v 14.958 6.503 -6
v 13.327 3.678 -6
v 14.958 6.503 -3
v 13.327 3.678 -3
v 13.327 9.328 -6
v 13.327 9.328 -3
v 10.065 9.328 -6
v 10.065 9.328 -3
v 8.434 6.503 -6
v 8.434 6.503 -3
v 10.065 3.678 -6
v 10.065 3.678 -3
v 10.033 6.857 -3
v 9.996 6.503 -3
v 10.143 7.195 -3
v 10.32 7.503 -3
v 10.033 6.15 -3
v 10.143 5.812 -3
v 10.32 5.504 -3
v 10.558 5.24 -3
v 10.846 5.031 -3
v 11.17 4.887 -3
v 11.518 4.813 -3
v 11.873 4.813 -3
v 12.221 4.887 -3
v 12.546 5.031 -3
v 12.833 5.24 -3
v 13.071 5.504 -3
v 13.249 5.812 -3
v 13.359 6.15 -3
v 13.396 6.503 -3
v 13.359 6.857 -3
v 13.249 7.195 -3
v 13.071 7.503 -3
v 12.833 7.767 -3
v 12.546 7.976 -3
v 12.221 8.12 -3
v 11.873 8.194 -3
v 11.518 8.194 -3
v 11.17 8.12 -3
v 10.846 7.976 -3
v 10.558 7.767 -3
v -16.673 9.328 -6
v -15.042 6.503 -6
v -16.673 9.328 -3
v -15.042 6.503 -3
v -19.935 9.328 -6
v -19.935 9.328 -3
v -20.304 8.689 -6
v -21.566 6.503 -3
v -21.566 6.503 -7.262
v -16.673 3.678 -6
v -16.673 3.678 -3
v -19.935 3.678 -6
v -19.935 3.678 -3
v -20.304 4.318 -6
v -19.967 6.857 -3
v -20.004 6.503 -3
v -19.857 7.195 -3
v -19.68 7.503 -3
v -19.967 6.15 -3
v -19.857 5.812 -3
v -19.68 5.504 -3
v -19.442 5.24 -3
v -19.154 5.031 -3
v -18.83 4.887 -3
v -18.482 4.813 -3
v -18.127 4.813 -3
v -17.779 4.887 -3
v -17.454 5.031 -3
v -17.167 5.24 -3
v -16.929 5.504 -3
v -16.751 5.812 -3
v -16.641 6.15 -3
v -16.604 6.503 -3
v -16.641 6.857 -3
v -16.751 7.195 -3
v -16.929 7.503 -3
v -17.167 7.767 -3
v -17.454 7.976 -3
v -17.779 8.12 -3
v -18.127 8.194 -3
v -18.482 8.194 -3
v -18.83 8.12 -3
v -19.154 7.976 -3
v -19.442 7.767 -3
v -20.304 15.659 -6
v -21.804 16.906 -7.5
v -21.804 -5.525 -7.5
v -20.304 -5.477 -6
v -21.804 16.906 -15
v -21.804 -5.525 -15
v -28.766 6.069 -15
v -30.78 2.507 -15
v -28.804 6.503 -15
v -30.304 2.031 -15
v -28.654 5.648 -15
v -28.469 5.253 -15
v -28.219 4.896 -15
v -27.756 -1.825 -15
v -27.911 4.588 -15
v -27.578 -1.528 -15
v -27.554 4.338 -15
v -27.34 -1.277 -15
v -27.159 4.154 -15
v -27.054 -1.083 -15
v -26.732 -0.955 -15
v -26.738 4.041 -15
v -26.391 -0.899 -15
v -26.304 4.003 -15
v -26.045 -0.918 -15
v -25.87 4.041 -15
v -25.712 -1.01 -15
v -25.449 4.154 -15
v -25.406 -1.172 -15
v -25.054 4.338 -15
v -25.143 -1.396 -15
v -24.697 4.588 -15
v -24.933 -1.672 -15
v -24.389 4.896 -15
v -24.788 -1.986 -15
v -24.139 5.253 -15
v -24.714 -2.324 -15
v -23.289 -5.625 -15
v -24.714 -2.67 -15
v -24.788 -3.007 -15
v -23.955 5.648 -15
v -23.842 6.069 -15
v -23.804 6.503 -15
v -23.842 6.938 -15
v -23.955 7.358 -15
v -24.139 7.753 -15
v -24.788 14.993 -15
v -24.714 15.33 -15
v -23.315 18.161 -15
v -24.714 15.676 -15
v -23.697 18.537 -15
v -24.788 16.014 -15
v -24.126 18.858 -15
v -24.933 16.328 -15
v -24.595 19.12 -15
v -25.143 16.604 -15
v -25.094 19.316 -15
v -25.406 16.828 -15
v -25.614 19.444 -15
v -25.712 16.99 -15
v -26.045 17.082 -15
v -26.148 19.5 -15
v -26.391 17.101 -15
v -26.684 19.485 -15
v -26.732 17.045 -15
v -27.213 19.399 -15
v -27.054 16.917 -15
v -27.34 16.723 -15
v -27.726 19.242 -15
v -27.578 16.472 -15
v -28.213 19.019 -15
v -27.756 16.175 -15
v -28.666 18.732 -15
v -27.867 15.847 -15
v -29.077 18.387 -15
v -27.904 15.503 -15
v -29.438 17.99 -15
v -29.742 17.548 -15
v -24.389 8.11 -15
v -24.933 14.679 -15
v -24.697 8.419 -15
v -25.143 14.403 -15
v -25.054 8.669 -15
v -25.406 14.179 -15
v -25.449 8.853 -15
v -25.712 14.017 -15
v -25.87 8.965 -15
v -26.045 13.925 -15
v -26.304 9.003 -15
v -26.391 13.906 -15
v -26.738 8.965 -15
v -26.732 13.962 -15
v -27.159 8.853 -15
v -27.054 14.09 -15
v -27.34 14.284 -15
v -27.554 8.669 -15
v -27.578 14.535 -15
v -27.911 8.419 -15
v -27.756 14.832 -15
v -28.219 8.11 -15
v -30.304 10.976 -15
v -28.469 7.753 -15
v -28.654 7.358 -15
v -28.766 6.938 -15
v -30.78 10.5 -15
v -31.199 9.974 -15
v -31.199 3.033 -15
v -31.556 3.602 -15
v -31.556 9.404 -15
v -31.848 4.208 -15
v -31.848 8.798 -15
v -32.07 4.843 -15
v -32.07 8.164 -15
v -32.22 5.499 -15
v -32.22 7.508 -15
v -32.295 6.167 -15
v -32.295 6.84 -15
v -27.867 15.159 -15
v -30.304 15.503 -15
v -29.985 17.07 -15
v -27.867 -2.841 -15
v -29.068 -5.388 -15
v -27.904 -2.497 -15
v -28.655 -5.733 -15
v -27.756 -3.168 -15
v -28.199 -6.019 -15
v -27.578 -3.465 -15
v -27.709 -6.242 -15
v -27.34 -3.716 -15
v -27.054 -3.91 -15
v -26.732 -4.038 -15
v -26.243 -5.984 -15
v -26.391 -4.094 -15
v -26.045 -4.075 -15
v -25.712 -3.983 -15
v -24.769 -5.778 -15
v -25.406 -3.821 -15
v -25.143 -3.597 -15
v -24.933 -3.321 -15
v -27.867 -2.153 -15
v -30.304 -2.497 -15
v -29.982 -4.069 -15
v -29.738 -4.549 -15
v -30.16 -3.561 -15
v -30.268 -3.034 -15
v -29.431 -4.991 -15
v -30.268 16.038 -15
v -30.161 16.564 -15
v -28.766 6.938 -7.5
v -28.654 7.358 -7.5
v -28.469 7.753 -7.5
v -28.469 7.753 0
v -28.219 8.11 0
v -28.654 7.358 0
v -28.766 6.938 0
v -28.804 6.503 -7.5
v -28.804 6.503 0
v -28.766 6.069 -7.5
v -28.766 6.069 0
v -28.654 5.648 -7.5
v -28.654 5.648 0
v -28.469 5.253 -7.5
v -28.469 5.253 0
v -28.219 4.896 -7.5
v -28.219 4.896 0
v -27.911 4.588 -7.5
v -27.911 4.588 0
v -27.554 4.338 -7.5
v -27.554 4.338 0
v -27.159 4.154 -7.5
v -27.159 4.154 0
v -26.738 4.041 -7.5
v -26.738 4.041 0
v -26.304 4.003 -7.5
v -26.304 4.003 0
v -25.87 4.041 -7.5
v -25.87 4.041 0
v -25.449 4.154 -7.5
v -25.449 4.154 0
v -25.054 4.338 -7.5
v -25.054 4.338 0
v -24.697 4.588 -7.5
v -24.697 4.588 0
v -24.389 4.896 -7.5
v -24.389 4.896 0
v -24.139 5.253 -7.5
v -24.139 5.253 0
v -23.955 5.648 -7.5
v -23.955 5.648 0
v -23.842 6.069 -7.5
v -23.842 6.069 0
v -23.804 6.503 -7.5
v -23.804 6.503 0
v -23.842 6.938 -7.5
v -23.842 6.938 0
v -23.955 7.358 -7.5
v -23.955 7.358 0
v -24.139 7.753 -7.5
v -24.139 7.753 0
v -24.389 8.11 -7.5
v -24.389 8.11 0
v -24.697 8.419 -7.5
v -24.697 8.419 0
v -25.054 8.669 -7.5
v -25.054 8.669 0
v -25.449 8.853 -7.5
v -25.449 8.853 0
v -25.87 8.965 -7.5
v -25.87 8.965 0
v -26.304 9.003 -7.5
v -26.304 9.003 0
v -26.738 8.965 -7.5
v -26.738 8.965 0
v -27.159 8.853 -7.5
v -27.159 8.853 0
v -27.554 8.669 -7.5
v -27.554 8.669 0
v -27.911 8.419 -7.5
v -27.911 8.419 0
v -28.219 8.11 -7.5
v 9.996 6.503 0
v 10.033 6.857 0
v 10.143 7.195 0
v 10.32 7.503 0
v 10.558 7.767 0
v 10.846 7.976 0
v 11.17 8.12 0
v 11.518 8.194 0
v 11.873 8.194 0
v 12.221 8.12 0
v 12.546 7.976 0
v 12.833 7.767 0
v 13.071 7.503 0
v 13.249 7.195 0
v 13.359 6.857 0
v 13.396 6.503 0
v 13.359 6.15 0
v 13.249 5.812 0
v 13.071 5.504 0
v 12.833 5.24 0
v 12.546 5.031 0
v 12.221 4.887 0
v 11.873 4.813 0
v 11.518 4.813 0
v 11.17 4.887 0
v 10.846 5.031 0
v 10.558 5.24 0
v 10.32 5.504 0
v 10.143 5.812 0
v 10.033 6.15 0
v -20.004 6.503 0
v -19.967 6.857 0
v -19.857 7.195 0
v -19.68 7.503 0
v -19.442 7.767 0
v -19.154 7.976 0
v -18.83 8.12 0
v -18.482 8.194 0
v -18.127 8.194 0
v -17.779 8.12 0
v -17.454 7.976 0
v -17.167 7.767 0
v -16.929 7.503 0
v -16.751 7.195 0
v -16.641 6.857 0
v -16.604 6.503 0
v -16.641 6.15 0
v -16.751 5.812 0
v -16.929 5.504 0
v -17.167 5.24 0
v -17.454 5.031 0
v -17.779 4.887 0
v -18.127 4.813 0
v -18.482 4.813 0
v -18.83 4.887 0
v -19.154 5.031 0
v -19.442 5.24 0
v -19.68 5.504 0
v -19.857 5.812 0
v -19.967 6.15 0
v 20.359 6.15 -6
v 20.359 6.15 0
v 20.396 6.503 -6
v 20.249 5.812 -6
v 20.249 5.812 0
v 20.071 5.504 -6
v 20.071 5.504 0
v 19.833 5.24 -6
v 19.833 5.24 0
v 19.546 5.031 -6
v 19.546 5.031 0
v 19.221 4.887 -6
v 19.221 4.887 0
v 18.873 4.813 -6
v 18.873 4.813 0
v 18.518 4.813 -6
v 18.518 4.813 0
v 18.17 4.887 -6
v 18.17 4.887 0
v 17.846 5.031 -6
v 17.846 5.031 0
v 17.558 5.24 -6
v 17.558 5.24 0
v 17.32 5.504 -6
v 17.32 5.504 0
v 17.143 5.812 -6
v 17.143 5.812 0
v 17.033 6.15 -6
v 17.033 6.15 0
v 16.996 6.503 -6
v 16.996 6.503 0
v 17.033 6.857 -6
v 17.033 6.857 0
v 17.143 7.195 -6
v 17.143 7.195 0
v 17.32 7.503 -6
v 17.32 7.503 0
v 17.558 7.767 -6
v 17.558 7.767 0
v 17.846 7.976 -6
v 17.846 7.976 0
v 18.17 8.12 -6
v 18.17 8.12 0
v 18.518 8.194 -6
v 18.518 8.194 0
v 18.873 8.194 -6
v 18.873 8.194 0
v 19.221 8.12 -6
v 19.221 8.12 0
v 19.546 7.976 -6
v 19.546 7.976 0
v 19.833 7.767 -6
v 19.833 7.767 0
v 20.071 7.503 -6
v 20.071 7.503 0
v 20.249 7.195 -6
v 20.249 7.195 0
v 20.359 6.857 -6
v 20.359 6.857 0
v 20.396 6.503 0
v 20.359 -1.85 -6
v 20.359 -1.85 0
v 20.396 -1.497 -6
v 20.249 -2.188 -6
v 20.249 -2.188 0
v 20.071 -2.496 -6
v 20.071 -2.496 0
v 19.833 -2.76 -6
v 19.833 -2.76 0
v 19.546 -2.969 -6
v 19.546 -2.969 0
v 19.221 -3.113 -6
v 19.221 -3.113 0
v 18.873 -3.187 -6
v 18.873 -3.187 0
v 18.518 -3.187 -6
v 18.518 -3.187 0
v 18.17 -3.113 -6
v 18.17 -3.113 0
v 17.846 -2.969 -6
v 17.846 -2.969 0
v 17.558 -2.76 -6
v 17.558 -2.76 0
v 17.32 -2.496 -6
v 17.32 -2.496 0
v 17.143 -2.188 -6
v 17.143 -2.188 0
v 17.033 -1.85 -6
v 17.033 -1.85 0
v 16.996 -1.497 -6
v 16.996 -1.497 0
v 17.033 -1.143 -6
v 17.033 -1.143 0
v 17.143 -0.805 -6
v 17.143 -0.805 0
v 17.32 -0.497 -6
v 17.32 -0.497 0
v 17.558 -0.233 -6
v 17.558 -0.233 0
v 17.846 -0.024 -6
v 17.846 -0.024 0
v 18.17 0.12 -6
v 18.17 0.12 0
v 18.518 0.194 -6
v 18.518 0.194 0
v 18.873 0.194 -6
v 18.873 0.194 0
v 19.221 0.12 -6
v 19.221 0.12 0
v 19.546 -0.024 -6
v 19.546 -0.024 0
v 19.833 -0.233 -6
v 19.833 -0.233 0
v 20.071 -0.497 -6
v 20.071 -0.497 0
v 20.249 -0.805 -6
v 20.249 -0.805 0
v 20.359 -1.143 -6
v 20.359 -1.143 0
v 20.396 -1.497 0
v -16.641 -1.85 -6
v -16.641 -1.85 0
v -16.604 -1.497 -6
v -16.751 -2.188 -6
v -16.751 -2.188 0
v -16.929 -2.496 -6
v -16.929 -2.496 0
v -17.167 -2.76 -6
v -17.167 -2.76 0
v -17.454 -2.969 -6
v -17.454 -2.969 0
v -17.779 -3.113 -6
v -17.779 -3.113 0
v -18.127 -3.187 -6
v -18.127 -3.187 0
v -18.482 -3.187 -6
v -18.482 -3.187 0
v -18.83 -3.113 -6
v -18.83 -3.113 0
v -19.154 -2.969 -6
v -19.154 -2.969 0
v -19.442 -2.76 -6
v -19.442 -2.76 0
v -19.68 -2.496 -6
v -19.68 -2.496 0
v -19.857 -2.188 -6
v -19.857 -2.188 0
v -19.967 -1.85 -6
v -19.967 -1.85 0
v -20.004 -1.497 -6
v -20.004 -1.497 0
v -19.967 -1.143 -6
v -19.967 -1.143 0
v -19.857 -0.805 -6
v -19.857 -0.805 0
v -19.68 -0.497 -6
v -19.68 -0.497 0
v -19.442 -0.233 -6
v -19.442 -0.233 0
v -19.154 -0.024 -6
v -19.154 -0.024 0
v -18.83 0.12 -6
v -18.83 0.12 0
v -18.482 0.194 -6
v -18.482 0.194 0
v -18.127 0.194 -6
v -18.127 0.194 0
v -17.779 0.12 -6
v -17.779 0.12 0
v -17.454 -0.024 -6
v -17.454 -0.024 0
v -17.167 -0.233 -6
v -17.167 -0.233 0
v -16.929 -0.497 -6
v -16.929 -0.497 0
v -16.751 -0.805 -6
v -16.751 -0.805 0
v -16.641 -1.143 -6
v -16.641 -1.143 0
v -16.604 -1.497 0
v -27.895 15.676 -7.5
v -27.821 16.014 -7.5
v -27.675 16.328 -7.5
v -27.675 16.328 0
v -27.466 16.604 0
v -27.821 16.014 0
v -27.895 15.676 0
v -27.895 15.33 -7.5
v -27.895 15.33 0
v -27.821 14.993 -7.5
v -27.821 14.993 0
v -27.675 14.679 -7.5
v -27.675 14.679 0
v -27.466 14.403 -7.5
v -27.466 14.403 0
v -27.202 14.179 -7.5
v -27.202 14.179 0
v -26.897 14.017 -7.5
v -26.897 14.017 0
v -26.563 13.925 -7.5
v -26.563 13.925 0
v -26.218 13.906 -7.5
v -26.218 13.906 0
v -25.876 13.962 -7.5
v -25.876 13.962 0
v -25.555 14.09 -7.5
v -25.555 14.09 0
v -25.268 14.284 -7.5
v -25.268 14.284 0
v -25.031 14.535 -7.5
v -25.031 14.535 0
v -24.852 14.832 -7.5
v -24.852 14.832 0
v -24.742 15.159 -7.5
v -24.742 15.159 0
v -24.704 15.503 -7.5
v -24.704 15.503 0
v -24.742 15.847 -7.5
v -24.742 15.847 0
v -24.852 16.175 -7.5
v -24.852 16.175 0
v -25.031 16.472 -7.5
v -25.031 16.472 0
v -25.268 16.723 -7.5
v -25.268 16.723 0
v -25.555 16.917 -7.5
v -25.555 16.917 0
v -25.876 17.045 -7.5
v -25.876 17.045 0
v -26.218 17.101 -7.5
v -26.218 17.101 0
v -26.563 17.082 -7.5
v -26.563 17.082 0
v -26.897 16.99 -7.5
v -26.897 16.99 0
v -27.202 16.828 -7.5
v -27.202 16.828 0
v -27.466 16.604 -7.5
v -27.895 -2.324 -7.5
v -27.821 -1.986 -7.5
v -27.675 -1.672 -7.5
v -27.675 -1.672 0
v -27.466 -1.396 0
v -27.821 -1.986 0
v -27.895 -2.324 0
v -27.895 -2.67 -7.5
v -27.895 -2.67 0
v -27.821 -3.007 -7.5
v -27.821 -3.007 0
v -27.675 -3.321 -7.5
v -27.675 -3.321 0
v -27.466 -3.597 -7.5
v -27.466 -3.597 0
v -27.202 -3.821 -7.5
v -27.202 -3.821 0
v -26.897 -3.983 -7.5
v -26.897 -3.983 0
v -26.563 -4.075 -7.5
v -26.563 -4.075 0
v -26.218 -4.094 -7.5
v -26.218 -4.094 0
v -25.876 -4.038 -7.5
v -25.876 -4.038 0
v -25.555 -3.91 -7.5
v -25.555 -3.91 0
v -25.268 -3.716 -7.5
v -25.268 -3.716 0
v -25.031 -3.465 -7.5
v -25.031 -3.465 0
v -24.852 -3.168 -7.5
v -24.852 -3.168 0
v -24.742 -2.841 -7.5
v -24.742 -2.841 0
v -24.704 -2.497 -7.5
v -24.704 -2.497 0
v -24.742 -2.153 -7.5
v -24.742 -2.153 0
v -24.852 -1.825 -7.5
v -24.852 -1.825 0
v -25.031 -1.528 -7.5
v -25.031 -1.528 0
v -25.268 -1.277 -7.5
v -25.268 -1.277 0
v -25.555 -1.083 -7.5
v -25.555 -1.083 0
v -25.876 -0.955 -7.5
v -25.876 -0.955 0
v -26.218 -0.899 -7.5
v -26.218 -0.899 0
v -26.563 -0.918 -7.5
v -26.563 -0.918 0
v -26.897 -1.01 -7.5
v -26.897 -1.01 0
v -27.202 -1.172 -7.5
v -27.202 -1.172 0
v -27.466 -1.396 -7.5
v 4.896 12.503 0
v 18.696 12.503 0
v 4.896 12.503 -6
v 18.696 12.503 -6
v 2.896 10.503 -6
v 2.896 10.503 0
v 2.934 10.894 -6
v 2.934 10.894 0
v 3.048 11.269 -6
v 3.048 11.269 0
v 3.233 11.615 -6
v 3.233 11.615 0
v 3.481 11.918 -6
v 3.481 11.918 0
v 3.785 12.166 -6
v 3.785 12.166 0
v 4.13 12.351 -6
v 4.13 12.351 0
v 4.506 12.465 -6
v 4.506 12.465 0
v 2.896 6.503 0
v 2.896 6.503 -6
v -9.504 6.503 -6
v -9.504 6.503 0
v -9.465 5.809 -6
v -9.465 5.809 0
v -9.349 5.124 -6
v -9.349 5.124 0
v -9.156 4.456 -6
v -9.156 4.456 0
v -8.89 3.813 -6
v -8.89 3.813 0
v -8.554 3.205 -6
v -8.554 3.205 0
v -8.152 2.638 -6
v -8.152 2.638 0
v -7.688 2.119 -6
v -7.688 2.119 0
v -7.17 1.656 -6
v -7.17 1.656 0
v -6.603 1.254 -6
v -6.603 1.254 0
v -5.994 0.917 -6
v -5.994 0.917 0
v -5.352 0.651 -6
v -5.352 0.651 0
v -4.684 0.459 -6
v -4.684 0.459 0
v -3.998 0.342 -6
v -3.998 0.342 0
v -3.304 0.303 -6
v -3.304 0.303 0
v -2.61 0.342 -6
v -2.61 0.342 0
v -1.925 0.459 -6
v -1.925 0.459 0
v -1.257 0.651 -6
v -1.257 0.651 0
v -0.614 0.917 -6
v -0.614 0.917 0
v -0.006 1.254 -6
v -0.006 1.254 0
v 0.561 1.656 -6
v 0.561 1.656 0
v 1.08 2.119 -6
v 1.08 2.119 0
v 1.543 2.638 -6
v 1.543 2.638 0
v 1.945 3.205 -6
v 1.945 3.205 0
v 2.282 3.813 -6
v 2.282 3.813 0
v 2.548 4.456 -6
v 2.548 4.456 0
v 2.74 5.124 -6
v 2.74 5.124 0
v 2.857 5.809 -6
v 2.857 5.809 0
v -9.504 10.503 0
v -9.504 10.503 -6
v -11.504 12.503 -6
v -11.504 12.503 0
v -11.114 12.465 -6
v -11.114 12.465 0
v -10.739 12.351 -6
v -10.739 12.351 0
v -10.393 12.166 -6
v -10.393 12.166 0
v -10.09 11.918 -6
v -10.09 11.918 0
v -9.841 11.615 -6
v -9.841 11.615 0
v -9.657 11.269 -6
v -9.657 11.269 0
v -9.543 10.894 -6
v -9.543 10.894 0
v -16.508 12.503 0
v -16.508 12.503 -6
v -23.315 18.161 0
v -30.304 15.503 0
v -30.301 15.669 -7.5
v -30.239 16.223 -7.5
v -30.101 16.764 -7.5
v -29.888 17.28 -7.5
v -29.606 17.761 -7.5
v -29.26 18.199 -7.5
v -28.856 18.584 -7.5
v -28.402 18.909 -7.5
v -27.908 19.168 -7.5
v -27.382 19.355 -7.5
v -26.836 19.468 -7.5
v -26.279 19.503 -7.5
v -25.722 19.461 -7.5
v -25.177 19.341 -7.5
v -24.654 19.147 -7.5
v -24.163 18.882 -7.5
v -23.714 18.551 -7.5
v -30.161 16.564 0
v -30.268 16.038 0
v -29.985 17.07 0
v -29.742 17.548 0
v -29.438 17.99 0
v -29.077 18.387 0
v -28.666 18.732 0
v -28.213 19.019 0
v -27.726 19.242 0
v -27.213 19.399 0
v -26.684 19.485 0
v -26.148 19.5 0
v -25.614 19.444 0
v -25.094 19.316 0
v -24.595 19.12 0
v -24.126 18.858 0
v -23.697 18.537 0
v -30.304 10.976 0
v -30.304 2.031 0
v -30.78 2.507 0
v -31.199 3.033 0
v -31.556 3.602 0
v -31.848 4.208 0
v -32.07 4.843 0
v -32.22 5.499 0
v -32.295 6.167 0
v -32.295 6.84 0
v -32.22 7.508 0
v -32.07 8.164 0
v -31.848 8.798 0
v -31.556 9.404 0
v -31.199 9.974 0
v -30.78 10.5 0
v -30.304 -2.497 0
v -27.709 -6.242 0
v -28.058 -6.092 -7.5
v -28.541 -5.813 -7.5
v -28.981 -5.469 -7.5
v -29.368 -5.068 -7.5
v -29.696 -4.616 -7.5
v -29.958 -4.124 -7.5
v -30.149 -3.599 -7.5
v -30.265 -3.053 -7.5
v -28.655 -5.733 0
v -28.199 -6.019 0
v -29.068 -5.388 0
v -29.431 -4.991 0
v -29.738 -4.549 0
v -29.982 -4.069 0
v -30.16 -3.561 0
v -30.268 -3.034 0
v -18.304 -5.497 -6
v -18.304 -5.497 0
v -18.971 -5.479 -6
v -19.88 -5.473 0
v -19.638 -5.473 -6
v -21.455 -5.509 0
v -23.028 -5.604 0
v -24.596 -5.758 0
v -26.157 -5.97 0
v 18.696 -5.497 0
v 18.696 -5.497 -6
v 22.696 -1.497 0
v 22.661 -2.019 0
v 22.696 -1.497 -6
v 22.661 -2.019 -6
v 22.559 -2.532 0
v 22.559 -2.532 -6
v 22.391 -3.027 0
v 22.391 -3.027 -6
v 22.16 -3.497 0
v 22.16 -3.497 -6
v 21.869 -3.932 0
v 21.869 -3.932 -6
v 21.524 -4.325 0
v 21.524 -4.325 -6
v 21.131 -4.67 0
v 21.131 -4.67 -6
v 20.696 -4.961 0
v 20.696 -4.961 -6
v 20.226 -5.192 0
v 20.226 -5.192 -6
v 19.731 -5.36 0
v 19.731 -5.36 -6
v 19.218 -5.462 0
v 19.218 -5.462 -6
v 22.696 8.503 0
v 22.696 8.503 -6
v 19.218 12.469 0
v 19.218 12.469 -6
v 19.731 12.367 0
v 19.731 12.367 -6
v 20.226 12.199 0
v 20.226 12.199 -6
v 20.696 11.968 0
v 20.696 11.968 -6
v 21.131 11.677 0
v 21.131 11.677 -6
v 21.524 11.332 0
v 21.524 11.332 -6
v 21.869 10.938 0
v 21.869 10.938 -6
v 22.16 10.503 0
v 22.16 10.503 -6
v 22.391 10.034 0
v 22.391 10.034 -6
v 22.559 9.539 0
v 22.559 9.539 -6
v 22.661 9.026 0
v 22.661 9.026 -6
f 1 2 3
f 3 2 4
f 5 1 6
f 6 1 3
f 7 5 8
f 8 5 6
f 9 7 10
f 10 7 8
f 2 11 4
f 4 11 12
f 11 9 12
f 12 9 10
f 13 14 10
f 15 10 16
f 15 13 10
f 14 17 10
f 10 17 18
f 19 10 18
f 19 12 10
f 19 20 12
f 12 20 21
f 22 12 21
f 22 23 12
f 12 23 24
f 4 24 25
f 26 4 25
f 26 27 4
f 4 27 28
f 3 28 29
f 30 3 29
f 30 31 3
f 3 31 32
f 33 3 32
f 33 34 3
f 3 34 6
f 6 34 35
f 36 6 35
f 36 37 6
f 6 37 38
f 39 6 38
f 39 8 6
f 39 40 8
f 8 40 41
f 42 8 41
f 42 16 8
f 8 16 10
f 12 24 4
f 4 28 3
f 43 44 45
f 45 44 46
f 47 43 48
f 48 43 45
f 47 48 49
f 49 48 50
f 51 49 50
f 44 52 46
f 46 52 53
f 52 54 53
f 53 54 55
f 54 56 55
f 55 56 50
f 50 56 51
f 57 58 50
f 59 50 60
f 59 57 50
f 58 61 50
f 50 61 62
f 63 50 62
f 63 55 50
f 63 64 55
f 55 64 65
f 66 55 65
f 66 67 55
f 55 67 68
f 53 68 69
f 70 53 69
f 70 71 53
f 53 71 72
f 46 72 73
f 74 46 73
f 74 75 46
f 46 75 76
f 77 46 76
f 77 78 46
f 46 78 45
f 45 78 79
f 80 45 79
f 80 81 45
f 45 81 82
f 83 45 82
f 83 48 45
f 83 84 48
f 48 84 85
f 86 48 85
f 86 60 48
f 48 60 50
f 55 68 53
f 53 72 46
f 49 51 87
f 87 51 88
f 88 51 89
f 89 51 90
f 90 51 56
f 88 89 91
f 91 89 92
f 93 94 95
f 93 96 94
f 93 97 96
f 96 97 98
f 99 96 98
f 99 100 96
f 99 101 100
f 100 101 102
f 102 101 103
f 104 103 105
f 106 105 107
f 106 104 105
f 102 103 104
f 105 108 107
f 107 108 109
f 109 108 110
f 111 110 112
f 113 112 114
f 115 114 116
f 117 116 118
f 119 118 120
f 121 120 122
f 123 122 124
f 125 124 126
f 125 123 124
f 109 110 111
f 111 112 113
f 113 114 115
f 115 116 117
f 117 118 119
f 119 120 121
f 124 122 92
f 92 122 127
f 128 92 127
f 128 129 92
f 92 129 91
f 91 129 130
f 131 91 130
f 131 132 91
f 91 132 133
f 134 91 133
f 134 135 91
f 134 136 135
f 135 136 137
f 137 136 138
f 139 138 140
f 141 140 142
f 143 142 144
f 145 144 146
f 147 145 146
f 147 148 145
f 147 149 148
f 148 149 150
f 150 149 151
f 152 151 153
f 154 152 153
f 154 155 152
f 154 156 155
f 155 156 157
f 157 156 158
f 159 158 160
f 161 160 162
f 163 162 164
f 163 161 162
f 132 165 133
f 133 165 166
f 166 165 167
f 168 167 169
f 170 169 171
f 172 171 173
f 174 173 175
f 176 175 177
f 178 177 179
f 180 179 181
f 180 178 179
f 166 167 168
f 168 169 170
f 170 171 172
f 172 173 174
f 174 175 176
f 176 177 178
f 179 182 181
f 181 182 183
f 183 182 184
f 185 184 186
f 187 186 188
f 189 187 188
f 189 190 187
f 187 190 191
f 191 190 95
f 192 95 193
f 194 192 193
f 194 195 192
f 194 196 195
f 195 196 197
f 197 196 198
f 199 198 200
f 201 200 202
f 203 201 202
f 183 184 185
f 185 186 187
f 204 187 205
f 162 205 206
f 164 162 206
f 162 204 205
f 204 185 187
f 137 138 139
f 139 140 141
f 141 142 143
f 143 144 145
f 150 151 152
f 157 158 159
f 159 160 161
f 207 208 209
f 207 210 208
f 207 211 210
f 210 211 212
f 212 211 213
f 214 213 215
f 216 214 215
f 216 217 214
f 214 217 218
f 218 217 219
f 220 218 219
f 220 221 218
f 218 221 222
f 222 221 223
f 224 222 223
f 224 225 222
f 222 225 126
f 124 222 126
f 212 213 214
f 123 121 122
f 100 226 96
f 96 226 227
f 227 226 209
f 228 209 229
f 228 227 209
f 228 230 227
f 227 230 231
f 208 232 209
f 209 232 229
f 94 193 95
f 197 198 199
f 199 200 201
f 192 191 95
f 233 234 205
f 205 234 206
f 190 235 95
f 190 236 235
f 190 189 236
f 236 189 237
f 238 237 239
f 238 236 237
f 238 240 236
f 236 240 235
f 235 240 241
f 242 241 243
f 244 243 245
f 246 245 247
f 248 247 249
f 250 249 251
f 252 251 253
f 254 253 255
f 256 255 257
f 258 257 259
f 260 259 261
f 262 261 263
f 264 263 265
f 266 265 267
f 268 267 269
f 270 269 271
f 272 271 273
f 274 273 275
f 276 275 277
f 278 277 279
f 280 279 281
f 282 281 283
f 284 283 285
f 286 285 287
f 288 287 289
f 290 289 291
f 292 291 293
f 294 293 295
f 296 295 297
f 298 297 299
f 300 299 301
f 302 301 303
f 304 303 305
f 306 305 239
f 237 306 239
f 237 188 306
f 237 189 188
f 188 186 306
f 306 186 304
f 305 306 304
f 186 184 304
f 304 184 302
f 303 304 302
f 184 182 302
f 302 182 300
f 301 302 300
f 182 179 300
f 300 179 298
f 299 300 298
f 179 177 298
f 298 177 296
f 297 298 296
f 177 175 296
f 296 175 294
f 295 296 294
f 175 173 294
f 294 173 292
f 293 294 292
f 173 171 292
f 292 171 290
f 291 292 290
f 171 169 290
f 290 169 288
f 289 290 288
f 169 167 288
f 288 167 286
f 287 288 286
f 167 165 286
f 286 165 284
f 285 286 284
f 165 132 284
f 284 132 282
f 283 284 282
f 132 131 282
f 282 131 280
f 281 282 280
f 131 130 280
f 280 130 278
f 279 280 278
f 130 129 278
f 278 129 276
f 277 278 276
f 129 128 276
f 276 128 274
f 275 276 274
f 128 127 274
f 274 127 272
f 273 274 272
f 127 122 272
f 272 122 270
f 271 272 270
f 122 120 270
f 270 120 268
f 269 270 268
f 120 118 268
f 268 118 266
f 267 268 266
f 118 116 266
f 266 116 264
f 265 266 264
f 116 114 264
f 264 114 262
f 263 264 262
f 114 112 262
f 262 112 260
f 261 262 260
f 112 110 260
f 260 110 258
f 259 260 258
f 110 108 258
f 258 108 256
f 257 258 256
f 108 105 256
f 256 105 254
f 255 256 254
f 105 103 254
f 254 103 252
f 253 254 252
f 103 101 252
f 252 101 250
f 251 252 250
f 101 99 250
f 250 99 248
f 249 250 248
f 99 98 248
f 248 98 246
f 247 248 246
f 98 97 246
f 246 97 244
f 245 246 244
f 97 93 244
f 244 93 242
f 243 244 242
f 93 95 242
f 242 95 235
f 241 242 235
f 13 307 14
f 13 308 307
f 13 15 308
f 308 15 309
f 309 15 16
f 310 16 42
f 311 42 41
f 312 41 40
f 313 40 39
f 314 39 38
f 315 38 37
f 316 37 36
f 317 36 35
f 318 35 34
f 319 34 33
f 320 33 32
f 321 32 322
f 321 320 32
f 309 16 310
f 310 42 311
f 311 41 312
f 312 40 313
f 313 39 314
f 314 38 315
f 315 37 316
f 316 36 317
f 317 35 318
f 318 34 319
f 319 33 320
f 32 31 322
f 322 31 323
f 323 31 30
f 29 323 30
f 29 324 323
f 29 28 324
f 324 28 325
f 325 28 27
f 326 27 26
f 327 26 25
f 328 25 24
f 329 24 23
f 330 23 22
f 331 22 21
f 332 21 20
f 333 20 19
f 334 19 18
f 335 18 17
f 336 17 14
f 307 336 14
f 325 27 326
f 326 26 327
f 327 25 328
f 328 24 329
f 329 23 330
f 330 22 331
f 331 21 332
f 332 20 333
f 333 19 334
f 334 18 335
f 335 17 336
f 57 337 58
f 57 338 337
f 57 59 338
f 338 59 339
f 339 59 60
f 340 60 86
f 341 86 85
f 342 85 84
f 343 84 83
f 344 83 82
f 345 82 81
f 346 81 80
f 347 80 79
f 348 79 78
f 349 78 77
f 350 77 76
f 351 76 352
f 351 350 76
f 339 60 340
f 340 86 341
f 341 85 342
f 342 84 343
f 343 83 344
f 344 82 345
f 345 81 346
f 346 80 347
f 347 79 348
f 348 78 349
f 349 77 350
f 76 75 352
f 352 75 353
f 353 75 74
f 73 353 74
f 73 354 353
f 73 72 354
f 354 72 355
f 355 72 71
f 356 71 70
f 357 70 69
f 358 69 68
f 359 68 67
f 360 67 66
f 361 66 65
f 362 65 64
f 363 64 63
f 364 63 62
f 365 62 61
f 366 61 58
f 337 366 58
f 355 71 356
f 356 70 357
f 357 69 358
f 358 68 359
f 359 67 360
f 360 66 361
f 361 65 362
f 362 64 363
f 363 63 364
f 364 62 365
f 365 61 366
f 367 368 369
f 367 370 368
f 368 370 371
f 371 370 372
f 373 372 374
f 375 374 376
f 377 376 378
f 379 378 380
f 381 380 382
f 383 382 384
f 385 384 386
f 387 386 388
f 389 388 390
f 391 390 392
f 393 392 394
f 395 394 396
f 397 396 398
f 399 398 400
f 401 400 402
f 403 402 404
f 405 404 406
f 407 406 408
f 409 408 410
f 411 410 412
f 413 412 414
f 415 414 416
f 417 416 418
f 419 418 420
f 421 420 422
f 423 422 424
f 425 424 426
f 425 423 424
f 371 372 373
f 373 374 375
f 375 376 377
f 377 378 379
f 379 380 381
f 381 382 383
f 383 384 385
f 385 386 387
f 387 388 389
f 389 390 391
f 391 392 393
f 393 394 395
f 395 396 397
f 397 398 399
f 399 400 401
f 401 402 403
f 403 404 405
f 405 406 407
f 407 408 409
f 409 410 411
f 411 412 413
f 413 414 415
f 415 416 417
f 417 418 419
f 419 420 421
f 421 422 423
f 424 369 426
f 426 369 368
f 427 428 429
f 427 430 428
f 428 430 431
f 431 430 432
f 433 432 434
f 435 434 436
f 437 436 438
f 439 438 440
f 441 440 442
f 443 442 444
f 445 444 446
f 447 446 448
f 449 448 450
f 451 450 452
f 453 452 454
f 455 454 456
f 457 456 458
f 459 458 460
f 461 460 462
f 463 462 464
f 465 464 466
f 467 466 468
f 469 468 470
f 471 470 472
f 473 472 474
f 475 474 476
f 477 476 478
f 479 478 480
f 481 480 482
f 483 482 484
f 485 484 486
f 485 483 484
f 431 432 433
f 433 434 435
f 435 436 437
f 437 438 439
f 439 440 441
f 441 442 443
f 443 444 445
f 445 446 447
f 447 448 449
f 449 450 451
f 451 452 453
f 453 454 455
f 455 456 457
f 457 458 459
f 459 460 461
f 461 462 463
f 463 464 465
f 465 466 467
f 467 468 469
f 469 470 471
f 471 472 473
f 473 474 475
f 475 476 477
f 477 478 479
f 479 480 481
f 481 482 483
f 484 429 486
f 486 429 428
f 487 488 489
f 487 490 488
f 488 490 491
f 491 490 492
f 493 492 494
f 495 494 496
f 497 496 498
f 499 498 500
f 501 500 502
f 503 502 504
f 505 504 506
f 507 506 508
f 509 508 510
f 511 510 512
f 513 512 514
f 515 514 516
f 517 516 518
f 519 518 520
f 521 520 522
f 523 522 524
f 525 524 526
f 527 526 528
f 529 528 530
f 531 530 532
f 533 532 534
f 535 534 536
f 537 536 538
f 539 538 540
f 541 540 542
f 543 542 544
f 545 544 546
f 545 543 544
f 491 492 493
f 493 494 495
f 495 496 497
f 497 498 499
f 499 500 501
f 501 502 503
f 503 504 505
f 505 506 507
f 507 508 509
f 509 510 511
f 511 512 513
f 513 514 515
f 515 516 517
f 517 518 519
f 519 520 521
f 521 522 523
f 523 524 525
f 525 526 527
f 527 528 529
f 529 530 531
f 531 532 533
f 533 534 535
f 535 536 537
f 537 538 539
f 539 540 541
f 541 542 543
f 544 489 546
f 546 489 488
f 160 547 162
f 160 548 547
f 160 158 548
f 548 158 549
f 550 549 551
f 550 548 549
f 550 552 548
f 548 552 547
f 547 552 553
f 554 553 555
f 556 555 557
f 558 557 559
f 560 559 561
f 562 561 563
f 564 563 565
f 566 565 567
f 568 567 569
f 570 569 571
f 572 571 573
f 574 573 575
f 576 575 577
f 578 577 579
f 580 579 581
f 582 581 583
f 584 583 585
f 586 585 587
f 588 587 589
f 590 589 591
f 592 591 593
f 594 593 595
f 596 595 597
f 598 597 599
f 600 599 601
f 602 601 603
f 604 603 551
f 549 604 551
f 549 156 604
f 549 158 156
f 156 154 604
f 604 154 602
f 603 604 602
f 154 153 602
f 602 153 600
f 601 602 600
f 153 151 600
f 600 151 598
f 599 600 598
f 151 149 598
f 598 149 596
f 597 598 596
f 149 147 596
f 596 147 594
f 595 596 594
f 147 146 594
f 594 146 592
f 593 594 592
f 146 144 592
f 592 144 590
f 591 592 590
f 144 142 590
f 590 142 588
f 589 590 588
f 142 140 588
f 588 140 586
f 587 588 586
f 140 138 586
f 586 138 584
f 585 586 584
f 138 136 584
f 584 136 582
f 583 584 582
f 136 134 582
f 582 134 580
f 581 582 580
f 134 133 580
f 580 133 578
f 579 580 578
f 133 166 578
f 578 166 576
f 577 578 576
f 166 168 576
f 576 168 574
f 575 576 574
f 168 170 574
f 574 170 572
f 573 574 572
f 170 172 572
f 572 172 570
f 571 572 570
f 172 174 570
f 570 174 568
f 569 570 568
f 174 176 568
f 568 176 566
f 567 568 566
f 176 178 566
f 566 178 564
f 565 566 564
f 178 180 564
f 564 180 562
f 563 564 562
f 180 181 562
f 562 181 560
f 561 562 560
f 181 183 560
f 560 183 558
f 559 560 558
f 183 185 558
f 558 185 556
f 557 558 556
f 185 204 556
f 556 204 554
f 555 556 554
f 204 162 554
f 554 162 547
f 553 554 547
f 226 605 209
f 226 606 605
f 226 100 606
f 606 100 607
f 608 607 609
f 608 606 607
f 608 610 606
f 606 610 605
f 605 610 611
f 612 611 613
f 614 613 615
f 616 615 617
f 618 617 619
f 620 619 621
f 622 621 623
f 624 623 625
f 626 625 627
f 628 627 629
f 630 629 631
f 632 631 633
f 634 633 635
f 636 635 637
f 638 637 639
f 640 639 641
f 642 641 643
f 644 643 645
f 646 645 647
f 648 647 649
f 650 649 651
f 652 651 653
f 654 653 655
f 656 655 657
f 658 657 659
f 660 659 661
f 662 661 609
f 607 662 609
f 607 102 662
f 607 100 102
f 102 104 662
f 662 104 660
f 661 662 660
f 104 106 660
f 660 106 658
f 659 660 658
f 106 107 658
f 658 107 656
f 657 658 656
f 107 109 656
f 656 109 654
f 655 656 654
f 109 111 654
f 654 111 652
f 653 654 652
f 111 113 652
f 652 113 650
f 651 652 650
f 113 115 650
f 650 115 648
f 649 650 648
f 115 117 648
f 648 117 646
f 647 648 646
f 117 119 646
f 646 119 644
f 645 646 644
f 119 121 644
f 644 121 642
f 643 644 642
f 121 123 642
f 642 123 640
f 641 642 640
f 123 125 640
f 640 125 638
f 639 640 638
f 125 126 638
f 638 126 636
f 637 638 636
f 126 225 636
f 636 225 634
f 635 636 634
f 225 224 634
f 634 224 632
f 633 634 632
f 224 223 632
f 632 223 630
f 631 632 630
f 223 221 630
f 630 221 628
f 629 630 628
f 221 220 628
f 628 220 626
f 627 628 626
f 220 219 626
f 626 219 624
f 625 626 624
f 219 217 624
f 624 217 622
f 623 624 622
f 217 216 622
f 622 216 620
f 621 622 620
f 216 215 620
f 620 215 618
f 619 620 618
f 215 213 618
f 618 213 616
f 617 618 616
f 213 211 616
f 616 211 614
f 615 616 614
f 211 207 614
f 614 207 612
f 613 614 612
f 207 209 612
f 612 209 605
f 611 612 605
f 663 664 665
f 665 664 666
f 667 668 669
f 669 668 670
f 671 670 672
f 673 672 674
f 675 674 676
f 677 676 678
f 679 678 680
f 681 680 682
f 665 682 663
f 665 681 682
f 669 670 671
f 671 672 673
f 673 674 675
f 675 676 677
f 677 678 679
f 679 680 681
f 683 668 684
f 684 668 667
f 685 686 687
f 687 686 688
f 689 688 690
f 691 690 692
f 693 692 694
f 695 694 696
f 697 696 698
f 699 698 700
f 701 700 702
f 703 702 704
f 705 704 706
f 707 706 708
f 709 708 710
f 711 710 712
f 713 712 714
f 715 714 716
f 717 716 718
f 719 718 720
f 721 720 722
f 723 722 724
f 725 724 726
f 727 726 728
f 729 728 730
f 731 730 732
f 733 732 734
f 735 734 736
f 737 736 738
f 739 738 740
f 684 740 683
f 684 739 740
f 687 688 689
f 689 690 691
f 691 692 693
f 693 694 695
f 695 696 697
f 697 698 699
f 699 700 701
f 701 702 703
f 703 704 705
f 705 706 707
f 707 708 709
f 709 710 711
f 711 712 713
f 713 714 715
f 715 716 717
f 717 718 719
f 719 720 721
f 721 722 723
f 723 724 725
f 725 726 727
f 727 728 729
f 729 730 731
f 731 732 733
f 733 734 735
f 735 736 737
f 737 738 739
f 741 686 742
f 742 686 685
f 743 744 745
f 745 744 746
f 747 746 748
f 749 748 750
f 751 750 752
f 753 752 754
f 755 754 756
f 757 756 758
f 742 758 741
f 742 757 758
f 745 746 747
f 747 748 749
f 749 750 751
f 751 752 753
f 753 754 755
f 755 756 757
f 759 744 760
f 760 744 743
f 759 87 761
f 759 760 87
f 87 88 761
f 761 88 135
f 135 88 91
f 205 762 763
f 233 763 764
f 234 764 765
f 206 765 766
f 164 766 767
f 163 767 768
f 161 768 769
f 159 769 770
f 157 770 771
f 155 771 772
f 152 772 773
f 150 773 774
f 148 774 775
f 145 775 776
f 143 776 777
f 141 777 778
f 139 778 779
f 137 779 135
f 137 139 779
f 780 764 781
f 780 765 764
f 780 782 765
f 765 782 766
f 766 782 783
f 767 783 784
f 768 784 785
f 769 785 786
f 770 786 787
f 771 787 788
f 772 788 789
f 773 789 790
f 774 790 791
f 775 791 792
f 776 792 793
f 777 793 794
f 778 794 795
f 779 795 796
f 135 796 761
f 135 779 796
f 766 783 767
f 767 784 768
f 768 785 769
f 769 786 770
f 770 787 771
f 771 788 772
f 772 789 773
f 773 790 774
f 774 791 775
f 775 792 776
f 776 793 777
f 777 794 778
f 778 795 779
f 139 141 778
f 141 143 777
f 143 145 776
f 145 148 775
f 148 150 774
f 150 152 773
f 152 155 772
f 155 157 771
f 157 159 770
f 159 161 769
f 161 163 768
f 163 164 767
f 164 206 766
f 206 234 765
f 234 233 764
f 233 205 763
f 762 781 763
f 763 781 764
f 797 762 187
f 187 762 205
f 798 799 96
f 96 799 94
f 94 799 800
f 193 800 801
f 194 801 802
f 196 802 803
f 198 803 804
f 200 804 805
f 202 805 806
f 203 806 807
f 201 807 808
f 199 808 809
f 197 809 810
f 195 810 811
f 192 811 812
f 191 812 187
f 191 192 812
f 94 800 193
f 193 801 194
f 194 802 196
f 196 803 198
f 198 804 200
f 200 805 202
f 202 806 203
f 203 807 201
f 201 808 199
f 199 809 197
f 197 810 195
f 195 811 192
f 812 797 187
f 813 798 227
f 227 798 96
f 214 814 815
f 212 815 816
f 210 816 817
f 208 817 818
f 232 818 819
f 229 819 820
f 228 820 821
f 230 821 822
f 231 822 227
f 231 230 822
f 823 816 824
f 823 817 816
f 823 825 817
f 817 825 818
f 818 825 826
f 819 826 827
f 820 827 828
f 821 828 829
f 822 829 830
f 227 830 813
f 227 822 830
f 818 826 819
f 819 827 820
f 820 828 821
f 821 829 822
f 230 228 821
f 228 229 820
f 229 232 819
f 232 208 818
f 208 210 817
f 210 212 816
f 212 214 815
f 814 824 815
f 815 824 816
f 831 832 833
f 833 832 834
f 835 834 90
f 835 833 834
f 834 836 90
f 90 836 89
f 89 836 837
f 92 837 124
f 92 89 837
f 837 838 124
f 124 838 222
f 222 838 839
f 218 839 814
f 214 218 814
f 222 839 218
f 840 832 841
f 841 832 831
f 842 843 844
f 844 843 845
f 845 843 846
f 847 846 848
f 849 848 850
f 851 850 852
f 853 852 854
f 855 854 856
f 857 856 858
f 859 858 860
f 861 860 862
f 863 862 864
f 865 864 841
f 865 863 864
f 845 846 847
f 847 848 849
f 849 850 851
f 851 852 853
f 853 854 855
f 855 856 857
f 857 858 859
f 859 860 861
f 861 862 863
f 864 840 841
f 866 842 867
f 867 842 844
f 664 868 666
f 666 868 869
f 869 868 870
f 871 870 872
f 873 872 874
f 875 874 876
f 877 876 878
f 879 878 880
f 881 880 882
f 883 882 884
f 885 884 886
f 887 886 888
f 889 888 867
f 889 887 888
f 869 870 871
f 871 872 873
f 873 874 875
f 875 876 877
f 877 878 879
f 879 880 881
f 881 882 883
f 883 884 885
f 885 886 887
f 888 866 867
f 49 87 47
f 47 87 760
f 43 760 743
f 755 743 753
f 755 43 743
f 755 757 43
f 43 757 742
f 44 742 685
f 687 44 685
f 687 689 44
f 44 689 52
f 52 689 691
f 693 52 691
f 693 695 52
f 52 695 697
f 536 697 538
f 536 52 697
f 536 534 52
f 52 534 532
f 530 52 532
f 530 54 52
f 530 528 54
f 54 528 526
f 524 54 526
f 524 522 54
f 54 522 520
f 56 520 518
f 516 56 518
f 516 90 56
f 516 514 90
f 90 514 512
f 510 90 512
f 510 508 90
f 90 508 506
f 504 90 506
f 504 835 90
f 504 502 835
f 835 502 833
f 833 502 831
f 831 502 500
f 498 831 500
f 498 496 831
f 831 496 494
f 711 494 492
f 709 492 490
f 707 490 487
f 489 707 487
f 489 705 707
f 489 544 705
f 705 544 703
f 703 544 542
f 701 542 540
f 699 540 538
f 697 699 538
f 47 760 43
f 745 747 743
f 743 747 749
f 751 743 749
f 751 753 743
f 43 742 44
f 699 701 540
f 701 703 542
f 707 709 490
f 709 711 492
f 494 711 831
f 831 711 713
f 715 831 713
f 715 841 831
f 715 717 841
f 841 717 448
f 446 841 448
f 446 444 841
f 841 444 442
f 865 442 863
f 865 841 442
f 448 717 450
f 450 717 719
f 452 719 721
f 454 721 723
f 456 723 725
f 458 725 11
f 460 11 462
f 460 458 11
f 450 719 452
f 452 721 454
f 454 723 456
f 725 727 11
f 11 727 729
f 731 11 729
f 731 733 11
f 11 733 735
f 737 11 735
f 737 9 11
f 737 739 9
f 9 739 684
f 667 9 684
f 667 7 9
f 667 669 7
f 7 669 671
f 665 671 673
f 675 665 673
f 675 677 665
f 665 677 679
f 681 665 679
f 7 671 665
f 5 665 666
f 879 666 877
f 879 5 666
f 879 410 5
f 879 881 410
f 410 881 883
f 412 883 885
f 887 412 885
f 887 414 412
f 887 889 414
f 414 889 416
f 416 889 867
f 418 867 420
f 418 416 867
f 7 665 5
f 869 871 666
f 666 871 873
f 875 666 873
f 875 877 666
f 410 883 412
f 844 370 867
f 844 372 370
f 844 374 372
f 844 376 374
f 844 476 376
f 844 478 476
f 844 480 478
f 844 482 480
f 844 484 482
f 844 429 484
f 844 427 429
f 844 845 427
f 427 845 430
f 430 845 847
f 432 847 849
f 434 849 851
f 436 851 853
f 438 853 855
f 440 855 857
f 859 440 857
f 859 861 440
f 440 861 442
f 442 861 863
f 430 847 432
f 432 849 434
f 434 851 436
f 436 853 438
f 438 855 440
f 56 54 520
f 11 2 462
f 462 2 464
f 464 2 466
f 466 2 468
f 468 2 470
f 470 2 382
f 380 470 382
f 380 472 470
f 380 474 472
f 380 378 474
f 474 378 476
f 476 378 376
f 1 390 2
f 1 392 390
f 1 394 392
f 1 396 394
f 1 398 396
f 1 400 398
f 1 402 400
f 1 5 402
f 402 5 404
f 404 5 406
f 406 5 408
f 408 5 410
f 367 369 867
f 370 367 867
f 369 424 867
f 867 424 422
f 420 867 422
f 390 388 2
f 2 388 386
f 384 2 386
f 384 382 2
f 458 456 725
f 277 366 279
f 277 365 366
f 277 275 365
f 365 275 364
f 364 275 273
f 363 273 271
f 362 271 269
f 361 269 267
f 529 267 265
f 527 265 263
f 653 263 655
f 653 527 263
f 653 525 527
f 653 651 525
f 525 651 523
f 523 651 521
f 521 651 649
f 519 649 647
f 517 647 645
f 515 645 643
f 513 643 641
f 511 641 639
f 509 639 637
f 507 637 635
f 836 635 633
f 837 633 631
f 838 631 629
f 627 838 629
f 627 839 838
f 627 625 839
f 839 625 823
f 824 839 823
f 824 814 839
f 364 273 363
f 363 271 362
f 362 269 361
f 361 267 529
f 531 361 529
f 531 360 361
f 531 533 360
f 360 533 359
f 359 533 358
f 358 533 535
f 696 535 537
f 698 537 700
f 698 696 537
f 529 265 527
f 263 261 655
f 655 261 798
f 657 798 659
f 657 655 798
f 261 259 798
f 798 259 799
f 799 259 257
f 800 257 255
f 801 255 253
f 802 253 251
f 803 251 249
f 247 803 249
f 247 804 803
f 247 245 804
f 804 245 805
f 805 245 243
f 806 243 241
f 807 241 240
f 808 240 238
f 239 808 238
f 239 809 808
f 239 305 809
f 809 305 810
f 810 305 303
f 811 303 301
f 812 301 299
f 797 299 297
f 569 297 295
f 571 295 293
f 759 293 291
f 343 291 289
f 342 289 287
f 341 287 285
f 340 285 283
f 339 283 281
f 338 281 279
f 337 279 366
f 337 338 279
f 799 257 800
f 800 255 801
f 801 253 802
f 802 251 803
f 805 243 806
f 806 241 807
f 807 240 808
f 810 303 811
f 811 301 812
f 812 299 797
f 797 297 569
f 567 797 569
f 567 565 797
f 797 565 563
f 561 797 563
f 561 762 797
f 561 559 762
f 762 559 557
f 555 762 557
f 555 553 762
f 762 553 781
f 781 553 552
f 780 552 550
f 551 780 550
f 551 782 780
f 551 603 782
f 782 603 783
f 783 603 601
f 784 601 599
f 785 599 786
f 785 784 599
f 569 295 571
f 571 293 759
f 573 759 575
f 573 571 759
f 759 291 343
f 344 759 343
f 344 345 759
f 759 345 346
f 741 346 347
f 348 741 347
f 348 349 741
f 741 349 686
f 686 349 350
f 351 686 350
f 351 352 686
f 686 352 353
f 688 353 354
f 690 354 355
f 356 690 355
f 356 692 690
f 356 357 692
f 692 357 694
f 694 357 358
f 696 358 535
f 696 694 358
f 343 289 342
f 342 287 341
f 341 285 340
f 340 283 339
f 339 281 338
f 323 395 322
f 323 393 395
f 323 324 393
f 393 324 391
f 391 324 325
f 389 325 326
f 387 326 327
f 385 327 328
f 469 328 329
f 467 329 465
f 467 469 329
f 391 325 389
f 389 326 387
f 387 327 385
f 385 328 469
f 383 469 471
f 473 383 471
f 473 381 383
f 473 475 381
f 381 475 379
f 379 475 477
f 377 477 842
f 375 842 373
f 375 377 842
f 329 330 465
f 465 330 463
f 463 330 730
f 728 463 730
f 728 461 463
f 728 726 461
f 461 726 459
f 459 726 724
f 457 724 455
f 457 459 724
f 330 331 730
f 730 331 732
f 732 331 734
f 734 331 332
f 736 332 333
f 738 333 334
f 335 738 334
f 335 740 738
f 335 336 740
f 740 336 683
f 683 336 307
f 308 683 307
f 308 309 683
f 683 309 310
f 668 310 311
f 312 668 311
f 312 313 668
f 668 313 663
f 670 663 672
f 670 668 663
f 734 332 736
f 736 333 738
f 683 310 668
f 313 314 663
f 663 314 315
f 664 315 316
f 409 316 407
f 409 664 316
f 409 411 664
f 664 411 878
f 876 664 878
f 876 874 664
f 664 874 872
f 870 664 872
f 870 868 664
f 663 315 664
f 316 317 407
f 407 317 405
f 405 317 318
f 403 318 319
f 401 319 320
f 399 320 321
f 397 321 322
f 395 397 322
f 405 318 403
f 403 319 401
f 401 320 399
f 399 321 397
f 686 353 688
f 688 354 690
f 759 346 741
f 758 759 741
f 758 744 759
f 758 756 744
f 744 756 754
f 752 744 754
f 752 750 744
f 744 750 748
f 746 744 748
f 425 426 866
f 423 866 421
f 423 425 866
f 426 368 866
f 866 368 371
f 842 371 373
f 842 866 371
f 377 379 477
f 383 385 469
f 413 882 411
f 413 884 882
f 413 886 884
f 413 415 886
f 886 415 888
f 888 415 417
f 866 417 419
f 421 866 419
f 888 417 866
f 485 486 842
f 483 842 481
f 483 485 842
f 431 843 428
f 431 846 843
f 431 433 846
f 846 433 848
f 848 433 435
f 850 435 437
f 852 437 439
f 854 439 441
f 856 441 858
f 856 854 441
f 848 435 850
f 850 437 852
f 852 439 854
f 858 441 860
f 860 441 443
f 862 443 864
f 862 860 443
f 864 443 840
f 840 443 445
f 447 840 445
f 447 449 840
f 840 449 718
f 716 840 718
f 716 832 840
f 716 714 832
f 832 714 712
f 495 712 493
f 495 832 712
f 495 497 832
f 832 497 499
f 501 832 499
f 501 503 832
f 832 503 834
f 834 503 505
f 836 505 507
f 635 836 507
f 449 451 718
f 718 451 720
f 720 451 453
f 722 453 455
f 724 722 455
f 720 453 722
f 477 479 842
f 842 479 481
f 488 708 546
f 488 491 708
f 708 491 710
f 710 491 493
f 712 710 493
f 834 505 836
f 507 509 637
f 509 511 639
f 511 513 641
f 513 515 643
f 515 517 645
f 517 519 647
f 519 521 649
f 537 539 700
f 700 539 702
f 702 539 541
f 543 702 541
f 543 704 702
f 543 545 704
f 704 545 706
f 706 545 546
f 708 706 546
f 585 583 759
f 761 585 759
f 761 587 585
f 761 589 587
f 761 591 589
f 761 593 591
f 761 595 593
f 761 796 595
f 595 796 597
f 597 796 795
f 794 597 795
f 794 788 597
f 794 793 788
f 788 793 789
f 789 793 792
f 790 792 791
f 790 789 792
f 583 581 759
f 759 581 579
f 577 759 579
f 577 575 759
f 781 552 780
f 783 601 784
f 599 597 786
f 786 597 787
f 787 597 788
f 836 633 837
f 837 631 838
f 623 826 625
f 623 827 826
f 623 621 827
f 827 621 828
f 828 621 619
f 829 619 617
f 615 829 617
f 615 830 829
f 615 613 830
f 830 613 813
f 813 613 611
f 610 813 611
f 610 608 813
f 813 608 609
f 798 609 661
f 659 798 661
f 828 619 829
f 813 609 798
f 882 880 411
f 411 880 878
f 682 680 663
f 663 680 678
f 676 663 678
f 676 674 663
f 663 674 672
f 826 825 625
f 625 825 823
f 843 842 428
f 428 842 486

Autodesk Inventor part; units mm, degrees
ref_plane "YZ Plane" through (0, 0, 0) normal (1, 0, 0) x (0, 1, 0)
ref_plane "XZ Plane" through (0, 0, 0) normal (0, 1, 0) x (-1, 0, 0)
ref_plane "XY Plane" through (0, 0, 0) normal (0, 0, 1) x (1, 0, 0)
sketch "Sketch1" plane through (0, 0, 0) normal (0, 0, 1) x (1, 0, 0)
  circle A0 centre (-18.3043, -1.4966) radius 1.7
  circle A1 centre (18.6957, -1.4966) radius 1.7
  circle A2 centre (18.6957, 6.5034) radius 1.7 projected
  circle A3 centre (-18.3043, 6.5034) radius 1.7 projected
  circle A4 centre (11.6957, 6.5034) radius 1.7 projected
  arc A5 (22.6957, 8.5034) -> (18.6957, 12.5034) centre (18.6957, 8.5034) ccw
  line L0 (4.8957, 12.5034) -> (18.6957, 12.5034)
  arc A6 (4.8957, 12.5034) -> (2.8957, 10.5034) centre (4.8957, 10.5034) ccw
  line L1 (2.8957, 6.5034) -> (2.8957, 10.5034)
  arc A7 (-9.5043, 6.5034) -> (2.8957, 6.5034) centre (-3.3043, 6.5034) ccw projected
  line L2 (-9.5043, 10.5034) -> (-9.5043, 6.5034)
  arc A8 (-9.5043, 10.5034) -> (-11.5043, 12.5034) centre (-11.5043, 10.5034) ccw
  line L3 (-16.508, 12.5034) -> (-11.5043, 12.5034)
  line L4 (18.6957, -5.4966) -> (-18.3043, -5.4966)
  circle A9 centre (-18.3043, 6.5034) radius 1.7 projected
  circle A10 centre (-26.3043, -2.4966) radius 1.6 projected
  circle A11 centre (-26.3043, 15.5034) radius 1.6 projected
  line L5 (-23.3147, 18.1609) -> (-16.508, 12.5034)
  arc A12 (-23.3147, 18.1609) -> (-30.3043, 15.5034) centre (-26.3043, 15.5034) ccw projected
  line L6 (-30.3043, 10.9756) -> (-30.3043, 15.5034) projected
  arc A13 (-30.3043, 10.9756) -> (-30.3043, 2.0313) centre (-26.3043, 6.5034) ccw projected
  line L7 (-30.3043, -2.4966) -> (-30.3043, 2.0313) projected
  arc A14 (-30.3043, -2.4966) -> (-27.7088, -6.2419) centre (-26.3043, -2.4966) ccw projected
  circle A15 centre (-26.3043, 6.5034) radius 2.5 projected
  arc A16 (-18.3043, -5.4966) -> (-27.7088, -6.2419) centre (-19.7185, -47.358) ccw
  line L8 (22.6957, 8.5034) -> (22.6957, -1.4966)
  arc A17 (18.6957, -5.4966) -> (22.6957, -1.4966) centre (18.6957, -1.4966) ccw
  point P0 (0, 0)
  point P1 (-18.3043, 6.5034)
  dimension "d14" = 12
  dimension "d17" = 8
  dimension "d18" = 4
  dimension "d24" = 6
  dimension "d25" = 2
  dimension "d26" = 2
  dimension "d27" = 2
  dimension "d28" = 2
extrude "Extrusion1" add sketch "Sketch1" against normal blind 6
sketch "Sketch2" plane through (0, 0, -6) normal (0, 0, -1) x (-1, 0, 0)
  circle A0 centre (26.3043, -2.4966) radius 1.6 projected
  circle A1 centre (26.3043, 15.5034) radius 1.6 projected
  circle A2 centre (26.3043, 6.5034) radius 2.5 projected
  arc A3 (30.3043, 15.5034) -> (23.3147, 18.1609) centre (26.3043, 15.5034) ccw projected
  circle A4 centre (18.3043, 6.5034) radius 1.7 projected
  circle A5 centre (18.3043, -5.4966) radius 1.7 projected
  circle A6 centre (26.3043, -2.4966) radius 1.6 projected
  circle A7 centre (26.3043, 15.5034) radius 1.6 projected
  line L0 (14.3043, 6.5034) -> (14.3043, -5.4966) projected
  arc A8 (14.3043, -5.4966) -> (19.7088, -9.2419) centre (18.3043, -5.4966) ccw projected
  line L1 (19.7088, -9.2419) -> (27.7088, -6.2419) projected
  arc A9 (27.7088, -6.2419) -> (30.3043, -2.4966) centre (26.3043, -2.4966) ccw projected
  line L2 (30.3043, -2.4966) -> (30.3043, 2.0313) projected
  arc A10 (30.3043, 2.0313) -> (30.3043, 10.9756) centre (26.3043, 6.5034) ccw projected
  line L3 (30.3043, 10.9756) -> (30.3043, 15.5034) projected
  arc A11 (30.3043, 15.5034) -> (23.3147, 18.1609) centre (26.3043, 15.5034) ccw projected
  line L4 (23.3147, 18.1609) -> (15.3147, 9.1609) projected
  arc A12 (15.3147, 9.1609) -> (14.3043, 6.5034) centre (18.3043, 6.5034) ccw projected
  line L5 (18.3043, 12.5242) -> (23.3147, 18.1609) construction
  arc A13 (27.7088, -6.2419) -> (18.3043, -5.4966) centre (19.7185, -47.358) ccw projected
  line L6 (23.3147, 18.1609) -> (16.508, 12.5034) projected
  line L7 (-4.8957, 12.5034) -> (-18.6957, 12.5034) projected
  line L8 (21.8043, 16.9055) -> (21.8043, -5.5246)
  line L9 (25.163, -7.1966) -> (21.8043, -5.5246)
  circle A14 centre (18.3043, 6.5034) radius 1.7 projected
  point P0 (0, 0)
  dimension "d22" = 3.5
extrude "Extrusion2" add sketch "Sketch2" along normal blind 9 contours L3 A10 L2 A9 A13 L8 L4 A3 | L4 L8 L6
chamfer "Chamfer1" distance 1.5 angle 45 1 edges at (-21.8043, 5.6904, -6)
sketch "Sketch4" plane through (0, 0, -6) normal (0, 0, -1) x (-1, 0, 0)
  circle A0 centre (-11.6957, 6.5034) radius 1.7 projected
  circle A1 centre (18.3043, 6.5034) radius 1.7 projected
  line L0 (-8.4337, 6.5034) -> (-10.0647, 3.6784)
  line L1 (-10.0647, 3.6784) -> (-13.3267, 3.6784)
  line L2 (-13.3267, 3.6784) -> (-14.9577, 6.5034)
  line L3 (-14.9577, 6.5034) -> (-13.3267, 9.3284)
  line L4 (-13.3267, 9.3284) -> (-10.0647, 9.3284)
  line L5 (-10.0647, 9.3284) -> (-8.4337, 6.5034)
  line L6 (15.0423, 6.5034) -> (16.6733, 9.3284)
  line L7 (16.6733, 9.3284) -> (19.9353, 9.3284)
  line L8 (19.9353, 9.3284) -> (21.5663, 6.5034)
  line L9 (21.5663, 6.5034) -> (19.9353, 3.6784)
  line L10 (19.9353, 3.6784) -> (16.6733, 3.6784)
  line L11 (16.6733, 3.6784) -> (15.0423, 6.5034)
  dimension "d21" = 5.65
extrude "Extrusion3" cut sketch "Sketch4" against normal blind 3 and the other way blind 5
properties part number "Extruder_Fixer_BLTouch"
